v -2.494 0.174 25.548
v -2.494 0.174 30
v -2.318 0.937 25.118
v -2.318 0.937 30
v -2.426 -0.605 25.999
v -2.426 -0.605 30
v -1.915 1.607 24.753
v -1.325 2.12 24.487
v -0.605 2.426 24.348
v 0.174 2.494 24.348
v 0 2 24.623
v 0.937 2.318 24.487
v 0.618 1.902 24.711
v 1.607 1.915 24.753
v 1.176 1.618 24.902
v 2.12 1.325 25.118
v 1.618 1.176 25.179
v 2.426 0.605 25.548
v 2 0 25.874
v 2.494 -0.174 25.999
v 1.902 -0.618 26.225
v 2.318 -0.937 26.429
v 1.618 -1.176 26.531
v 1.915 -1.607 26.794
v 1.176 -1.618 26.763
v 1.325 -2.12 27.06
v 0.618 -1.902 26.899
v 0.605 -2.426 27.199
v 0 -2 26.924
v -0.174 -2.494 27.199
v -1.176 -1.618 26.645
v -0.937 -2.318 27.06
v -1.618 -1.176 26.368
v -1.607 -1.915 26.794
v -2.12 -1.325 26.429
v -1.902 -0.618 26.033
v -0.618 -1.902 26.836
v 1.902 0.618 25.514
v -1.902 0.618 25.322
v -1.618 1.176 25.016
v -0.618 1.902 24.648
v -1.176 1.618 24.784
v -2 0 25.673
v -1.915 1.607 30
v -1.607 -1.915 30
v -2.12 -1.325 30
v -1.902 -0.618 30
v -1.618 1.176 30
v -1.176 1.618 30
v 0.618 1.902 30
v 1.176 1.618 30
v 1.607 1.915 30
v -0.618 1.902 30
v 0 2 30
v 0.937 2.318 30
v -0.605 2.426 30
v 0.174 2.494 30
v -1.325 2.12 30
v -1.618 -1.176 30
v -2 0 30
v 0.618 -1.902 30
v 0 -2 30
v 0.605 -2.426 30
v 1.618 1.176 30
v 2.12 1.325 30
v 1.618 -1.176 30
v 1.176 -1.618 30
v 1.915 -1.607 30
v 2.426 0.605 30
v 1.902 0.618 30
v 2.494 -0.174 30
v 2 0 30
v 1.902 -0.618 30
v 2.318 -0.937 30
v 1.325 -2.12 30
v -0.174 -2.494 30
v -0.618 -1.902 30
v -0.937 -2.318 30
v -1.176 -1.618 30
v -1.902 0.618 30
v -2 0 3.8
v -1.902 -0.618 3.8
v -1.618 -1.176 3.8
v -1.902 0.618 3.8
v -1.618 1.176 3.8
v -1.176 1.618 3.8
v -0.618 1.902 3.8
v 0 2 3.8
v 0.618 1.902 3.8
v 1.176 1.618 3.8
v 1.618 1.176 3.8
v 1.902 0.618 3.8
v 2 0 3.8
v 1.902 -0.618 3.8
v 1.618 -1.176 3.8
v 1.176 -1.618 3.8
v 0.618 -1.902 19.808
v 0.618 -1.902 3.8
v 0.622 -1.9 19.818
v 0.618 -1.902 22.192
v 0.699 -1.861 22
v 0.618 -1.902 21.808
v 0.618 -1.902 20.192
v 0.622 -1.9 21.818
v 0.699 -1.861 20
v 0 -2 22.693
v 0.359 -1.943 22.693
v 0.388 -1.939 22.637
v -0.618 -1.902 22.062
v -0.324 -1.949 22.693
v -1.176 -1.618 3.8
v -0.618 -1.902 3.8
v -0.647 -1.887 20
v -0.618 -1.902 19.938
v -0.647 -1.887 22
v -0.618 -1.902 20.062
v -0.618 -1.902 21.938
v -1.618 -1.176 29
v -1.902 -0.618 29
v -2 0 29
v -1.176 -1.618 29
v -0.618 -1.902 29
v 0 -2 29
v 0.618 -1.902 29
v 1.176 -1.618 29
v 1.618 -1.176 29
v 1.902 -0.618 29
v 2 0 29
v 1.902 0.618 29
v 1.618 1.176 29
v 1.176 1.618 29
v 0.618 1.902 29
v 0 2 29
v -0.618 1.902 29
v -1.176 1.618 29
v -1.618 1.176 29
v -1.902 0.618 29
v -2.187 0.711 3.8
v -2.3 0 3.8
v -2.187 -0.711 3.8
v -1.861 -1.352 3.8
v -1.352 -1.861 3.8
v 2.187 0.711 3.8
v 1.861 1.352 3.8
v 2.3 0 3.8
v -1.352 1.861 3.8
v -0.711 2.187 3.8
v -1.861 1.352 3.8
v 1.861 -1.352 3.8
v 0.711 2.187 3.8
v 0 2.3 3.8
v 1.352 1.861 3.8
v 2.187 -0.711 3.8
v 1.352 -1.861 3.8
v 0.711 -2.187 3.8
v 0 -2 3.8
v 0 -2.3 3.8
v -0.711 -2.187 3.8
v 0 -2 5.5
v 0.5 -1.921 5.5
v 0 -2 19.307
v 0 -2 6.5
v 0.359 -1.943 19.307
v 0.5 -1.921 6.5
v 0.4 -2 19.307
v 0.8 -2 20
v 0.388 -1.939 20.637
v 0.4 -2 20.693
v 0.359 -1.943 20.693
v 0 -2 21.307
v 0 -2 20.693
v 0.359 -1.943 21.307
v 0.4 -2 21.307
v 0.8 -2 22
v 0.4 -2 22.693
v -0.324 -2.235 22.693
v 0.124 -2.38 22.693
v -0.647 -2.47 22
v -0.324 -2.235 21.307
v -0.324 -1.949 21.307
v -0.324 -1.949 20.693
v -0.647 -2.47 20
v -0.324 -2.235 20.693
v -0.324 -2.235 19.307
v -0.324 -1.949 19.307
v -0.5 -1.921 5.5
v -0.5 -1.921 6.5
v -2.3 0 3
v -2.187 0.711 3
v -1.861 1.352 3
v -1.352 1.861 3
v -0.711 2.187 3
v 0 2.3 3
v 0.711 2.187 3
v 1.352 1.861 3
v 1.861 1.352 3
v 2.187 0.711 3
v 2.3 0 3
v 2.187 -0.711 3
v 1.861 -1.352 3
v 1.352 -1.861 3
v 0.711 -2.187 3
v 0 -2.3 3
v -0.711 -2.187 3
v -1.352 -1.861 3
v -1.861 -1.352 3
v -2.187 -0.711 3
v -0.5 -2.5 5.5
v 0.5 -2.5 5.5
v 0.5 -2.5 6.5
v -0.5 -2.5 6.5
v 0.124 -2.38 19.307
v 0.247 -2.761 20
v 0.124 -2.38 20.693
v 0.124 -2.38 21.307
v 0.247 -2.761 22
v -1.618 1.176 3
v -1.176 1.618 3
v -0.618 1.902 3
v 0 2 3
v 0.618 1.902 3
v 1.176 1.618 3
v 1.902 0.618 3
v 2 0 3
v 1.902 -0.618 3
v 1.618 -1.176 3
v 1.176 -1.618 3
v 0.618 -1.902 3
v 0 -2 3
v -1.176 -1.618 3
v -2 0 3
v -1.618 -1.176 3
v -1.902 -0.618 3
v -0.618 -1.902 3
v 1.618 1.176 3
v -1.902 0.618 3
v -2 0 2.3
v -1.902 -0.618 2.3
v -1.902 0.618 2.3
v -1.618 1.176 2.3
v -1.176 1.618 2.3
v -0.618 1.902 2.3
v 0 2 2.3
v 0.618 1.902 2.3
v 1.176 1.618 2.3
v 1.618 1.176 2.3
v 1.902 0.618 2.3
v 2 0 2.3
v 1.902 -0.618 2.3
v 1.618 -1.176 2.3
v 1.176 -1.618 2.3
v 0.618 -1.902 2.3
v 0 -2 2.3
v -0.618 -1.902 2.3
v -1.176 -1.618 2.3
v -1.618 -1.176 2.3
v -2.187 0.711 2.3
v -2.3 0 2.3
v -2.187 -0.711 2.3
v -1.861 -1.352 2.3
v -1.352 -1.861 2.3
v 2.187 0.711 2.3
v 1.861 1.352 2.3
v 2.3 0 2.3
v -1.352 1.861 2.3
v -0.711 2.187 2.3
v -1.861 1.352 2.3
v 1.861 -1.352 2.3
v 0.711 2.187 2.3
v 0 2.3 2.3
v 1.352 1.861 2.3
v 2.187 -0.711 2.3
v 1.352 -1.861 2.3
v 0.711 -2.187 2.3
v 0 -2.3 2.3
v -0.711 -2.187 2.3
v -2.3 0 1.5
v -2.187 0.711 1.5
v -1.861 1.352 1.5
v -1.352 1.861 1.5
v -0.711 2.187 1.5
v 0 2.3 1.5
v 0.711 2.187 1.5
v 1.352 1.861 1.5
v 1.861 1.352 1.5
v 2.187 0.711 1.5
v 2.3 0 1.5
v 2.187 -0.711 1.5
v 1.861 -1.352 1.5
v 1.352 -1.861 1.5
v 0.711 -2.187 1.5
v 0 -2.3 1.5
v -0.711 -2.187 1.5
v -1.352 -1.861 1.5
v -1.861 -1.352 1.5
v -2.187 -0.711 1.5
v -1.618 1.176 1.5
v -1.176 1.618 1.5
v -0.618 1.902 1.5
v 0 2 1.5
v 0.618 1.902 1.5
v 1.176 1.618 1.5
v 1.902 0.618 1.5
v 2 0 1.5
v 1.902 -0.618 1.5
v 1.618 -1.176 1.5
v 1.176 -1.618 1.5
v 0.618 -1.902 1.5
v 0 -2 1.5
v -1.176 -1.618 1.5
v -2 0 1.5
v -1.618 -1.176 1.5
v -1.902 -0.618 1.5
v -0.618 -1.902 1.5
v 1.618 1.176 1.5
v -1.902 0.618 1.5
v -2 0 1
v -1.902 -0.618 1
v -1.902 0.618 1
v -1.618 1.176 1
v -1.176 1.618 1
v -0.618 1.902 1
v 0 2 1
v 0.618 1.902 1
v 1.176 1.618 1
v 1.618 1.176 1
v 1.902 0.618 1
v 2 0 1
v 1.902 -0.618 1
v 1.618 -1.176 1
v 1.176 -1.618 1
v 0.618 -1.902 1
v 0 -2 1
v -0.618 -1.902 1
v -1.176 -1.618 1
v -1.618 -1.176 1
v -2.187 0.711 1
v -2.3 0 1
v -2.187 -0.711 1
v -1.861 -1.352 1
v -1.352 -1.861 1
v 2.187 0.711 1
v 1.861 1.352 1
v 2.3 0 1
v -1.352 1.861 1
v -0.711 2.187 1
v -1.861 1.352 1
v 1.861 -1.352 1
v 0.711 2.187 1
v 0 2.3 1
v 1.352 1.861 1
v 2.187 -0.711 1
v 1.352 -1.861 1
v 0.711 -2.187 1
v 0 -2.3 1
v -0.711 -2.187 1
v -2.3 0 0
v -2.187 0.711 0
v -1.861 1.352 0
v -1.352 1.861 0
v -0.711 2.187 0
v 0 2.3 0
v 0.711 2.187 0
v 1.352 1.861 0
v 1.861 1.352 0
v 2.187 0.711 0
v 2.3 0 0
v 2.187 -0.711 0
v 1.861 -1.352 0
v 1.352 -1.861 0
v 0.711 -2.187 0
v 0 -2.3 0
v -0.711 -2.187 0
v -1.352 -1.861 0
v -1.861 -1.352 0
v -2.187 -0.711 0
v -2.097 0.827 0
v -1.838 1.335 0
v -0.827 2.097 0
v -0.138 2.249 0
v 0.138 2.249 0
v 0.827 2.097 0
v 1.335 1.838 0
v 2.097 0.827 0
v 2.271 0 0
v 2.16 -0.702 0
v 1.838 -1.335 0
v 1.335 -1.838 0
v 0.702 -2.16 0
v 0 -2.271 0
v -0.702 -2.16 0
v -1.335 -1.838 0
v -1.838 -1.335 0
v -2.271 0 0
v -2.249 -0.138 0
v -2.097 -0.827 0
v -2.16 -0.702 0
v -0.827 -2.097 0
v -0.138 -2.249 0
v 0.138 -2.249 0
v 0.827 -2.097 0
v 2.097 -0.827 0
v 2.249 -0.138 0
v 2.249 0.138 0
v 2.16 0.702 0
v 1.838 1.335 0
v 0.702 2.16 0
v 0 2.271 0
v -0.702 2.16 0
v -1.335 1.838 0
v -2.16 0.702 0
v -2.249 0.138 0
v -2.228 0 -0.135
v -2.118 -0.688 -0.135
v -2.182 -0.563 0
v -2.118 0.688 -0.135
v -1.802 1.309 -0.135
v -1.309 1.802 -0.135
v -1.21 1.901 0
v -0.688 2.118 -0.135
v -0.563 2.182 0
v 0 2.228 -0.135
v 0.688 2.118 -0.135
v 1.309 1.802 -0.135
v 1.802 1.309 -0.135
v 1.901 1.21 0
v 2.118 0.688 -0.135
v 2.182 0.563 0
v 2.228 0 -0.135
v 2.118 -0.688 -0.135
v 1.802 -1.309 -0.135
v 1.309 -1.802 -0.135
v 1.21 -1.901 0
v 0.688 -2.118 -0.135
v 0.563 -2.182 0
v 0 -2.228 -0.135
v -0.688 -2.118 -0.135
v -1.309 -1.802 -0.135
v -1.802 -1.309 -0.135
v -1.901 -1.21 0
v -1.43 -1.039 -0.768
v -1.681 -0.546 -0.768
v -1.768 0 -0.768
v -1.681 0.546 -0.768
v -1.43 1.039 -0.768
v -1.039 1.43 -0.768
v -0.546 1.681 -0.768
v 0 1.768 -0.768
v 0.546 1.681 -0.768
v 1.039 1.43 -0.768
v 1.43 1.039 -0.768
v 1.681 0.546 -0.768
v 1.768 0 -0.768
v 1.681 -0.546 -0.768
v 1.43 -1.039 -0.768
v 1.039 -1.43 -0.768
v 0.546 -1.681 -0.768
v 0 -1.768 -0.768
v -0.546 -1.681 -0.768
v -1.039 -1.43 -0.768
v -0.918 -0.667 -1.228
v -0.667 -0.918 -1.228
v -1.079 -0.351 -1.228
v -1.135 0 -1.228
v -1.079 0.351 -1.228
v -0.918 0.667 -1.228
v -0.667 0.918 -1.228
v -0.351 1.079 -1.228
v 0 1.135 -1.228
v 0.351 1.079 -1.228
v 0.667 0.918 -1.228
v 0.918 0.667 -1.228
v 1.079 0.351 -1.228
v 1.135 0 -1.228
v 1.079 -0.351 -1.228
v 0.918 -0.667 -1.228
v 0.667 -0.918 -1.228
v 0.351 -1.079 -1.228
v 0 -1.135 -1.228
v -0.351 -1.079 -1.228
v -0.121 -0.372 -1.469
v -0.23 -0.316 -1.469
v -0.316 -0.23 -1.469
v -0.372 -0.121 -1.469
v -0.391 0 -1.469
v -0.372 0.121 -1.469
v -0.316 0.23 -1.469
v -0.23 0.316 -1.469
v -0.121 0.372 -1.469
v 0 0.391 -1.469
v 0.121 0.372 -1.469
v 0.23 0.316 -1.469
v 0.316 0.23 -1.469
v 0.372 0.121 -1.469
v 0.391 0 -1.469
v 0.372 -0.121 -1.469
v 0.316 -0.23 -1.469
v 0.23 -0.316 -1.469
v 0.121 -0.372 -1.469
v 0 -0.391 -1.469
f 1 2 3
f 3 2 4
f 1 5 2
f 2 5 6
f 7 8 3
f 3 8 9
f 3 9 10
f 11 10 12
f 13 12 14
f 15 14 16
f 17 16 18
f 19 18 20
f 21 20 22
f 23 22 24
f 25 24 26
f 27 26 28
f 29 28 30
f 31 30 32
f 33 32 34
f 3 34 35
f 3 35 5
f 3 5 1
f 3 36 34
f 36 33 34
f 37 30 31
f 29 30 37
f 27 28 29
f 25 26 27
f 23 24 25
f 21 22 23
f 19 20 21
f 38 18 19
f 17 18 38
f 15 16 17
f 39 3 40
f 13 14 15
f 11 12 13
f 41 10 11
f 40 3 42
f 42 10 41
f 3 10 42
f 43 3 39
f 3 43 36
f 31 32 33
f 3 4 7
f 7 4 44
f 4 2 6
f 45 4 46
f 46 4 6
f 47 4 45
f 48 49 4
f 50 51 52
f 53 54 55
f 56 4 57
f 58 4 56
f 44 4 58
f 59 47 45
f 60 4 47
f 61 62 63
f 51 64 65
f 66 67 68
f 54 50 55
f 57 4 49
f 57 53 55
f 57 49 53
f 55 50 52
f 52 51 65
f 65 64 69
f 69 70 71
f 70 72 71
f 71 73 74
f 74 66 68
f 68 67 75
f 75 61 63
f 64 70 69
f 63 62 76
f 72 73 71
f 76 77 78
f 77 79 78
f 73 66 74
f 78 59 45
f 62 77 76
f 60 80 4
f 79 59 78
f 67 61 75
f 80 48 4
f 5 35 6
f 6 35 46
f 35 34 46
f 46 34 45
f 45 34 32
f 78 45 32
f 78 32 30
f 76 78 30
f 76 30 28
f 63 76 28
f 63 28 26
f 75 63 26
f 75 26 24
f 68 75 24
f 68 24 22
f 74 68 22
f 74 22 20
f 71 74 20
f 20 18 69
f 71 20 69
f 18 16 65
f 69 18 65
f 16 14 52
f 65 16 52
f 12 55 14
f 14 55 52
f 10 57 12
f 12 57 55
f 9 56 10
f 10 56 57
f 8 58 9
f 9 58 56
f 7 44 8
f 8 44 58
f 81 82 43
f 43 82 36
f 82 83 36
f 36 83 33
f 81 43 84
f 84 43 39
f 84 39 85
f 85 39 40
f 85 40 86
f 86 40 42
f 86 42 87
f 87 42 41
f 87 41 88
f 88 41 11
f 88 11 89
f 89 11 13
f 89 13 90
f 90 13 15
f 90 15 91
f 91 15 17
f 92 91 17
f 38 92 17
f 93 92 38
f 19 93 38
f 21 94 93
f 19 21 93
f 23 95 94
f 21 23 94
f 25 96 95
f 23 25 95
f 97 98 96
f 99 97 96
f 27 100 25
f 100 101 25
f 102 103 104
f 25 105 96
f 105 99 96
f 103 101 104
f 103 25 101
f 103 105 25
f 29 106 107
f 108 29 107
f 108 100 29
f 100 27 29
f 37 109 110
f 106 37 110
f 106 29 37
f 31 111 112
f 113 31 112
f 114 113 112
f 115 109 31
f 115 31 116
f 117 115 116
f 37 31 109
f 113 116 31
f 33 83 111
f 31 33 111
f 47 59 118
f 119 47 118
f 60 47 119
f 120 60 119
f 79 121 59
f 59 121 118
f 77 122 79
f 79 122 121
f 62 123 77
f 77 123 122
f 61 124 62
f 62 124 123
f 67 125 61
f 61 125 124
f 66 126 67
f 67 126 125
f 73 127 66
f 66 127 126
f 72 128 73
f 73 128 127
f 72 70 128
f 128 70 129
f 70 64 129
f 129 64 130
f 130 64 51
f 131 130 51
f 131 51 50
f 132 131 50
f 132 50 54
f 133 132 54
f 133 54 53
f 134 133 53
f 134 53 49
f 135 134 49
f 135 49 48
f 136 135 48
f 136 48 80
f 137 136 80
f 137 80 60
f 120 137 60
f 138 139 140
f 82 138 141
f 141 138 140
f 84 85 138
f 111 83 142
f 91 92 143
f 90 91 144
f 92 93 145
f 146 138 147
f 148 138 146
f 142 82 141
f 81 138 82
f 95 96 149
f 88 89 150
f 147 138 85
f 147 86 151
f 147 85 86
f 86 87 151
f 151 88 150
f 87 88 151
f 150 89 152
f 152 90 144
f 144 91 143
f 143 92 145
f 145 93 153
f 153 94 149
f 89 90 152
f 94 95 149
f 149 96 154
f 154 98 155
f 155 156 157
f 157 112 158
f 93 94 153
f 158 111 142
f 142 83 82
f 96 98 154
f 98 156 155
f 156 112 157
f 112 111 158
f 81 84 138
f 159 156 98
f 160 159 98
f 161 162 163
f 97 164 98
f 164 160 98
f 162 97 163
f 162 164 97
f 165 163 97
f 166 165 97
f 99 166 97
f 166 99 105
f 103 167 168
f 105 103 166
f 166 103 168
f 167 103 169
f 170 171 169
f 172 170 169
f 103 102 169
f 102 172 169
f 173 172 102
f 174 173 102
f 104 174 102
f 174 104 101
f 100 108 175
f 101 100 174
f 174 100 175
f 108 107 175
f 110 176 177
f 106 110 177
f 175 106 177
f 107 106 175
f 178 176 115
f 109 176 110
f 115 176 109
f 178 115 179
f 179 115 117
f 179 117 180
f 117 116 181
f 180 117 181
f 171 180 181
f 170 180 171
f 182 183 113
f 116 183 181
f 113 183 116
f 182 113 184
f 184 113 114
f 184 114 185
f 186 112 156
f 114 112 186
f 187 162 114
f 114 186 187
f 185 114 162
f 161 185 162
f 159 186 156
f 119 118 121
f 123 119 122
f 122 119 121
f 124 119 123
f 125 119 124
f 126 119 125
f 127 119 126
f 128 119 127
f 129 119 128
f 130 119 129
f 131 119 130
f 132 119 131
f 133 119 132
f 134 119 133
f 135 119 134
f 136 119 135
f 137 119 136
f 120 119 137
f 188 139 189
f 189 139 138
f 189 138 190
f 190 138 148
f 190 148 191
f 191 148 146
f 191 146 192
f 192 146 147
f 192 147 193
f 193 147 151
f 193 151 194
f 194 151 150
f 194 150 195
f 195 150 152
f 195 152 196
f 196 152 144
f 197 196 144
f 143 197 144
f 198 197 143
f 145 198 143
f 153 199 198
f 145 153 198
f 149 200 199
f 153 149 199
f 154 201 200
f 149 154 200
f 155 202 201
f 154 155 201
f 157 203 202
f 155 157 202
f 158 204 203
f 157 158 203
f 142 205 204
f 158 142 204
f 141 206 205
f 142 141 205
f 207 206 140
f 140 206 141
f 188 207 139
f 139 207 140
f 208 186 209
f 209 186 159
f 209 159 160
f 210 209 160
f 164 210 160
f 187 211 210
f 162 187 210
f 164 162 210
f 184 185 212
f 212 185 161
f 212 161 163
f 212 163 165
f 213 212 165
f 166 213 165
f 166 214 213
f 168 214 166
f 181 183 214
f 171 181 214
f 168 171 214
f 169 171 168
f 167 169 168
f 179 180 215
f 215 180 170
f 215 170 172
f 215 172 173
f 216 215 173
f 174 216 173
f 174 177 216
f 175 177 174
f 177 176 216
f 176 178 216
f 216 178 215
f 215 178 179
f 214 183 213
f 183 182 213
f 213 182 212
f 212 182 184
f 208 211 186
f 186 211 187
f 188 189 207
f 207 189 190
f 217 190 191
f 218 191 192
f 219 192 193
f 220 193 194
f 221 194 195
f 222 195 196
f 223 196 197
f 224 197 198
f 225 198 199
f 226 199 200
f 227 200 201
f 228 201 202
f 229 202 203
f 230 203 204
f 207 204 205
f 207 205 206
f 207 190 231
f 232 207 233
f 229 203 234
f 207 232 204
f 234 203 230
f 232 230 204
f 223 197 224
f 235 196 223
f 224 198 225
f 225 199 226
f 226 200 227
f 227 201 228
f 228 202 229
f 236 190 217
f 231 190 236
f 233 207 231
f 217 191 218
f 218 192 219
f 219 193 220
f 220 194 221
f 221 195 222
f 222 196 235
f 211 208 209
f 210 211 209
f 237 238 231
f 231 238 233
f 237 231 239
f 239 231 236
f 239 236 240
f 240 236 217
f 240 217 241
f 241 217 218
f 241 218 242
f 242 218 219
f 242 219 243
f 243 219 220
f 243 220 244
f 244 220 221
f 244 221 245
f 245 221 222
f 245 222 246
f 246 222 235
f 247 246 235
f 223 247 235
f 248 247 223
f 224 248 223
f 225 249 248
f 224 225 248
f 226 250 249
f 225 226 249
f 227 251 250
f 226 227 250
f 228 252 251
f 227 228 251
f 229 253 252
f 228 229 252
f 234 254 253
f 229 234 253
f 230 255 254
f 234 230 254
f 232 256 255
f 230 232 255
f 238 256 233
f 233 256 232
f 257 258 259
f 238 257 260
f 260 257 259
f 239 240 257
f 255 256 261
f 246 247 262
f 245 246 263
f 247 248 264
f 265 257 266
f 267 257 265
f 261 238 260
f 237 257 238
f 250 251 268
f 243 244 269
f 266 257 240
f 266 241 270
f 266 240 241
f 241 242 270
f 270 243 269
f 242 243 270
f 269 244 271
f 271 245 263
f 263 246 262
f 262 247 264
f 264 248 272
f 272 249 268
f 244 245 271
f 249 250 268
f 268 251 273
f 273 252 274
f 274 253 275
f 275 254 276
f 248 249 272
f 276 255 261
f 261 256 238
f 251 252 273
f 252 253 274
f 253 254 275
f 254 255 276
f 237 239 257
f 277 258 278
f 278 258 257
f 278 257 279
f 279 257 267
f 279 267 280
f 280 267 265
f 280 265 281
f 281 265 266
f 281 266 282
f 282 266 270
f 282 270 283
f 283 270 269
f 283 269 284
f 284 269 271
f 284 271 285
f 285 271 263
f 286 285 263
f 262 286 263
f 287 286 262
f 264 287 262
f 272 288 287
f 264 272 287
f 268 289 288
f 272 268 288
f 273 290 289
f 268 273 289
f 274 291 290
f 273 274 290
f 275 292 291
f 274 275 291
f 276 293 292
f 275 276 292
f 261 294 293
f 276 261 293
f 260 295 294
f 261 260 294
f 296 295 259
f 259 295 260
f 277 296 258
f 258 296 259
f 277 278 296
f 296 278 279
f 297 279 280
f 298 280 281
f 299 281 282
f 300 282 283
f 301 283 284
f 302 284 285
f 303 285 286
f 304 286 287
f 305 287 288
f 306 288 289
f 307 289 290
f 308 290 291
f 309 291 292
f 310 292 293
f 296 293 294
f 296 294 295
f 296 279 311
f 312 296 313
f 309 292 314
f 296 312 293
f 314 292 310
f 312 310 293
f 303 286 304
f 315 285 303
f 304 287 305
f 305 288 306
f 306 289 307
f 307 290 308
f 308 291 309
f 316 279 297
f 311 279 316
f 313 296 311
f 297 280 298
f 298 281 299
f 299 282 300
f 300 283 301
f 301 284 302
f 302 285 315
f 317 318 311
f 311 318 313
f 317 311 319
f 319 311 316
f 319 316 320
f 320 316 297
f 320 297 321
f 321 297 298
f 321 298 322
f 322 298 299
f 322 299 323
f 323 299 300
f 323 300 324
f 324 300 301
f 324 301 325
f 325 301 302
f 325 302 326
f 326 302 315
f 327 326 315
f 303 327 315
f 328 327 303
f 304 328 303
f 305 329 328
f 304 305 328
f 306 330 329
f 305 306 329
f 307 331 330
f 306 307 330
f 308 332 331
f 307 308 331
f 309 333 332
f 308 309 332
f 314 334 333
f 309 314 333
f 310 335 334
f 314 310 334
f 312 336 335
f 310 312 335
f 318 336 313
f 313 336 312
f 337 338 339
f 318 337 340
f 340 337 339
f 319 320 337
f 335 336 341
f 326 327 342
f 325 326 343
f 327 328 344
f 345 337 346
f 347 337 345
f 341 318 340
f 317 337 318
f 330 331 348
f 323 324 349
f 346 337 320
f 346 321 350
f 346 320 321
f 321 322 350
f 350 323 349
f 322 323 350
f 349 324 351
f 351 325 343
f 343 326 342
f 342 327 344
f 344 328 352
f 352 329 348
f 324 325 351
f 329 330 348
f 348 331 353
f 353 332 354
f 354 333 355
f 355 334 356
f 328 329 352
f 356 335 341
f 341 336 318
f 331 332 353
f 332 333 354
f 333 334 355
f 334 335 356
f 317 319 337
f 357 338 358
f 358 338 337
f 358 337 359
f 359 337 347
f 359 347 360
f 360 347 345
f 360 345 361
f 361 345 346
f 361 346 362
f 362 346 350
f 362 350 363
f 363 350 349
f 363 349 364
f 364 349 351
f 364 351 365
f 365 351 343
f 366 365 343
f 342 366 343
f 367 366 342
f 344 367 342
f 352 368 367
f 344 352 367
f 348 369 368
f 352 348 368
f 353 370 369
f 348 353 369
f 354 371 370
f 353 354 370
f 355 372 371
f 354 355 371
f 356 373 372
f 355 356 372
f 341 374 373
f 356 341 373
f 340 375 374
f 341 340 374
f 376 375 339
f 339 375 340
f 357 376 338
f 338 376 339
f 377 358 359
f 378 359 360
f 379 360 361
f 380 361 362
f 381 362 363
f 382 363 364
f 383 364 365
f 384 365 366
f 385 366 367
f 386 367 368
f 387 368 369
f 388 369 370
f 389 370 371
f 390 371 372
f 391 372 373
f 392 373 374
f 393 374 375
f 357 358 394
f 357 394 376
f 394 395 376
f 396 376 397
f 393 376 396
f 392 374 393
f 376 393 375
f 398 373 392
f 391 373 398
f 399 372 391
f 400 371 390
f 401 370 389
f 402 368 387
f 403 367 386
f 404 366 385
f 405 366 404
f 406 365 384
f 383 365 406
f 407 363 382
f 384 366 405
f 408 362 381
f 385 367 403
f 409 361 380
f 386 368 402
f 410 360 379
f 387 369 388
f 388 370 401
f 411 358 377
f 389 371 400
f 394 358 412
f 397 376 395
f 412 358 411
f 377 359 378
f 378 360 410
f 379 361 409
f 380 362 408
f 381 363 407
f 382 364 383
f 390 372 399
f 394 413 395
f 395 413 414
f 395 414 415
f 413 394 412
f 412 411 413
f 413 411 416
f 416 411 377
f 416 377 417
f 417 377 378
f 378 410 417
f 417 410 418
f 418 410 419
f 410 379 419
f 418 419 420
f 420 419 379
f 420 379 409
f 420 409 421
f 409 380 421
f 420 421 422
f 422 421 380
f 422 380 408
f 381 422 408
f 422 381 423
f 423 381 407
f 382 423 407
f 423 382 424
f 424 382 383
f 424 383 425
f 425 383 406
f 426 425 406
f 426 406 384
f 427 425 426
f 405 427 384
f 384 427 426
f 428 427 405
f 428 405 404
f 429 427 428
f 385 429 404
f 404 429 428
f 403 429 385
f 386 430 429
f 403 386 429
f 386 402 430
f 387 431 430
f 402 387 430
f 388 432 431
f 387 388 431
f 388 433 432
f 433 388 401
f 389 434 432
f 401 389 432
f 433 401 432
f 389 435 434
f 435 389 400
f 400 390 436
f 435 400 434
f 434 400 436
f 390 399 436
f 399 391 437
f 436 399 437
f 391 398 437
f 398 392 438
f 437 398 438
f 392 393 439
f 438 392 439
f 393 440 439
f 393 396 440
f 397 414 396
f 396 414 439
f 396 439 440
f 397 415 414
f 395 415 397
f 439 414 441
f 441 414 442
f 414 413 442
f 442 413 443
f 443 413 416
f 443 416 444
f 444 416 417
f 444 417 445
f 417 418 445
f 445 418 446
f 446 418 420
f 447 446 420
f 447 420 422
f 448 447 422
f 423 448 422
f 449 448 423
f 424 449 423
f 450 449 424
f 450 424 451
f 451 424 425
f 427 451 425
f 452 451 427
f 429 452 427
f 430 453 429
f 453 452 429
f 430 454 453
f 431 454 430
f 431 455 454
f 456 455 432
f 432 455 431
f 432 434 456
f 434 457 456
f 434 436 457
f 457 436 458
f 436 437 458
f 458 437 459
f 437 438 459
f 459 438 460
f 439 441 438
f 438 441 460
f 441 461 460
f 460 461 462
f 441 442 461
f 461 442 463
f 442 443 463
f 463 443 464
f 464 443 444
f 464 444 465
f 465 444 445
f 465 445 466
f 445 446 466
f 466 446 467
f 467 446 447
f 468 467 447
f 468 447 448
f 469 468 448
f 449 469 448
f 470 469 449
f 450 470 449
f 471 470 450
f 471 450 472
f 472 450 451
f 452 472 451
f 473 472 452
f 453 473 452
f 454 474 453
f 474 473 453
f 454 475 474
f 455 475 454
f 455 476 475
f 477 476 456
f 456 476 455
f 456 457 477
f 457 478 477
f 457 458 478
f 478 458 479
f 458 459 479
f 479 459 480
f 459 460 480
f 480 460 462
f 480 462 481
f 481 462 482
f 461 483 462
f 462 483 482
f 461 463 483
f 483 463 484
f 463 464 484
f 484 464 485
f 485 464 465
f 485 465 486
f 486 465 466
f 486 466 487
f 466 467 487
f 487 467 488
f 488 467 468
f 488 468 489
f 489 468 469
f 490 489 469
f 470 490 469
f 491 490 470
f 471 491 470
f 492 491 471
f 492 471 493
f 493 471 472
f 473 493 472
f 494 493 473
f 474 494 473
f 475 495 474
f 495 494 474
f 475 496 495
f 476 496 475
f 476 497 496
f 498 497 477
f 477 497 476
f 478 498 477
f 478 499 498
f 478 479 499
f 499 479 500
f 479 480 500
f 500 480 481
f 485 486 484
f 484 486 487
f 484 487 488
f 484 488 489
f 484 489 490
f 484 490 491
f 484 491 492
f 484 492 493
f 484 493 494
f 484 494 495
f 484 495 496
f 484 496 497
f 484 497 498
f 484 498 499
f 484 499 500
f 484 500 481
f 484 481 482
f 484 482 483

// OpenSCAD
difference(){

	
	
	

	 union(){

		cylinder(h=30, r=2, $fn=20);
		
		translate([0, 0, 0]) cylinder(h=1, r=2.3, $fn=20);
		
		translate([0, 0, 1.5]) cylinder(h=.8, r=2.3, $fn=20);
		
		translate([0, 0, 3]) cylinder(h=.8, r=2.3, $fn=20);
		
		
		
		translate([0,0,20]) rotate(140){
		
			difference(){
		
		
				cylinder(h=10,r=2.5, $fn=20);
		
				rotate(a=30, v=[1,1,0])
					cube(center=true, size=[10,10,10]);
			}
			
		
		}
		
		translate([0,0,1]){
		
			intersection(){
		
				
				translate([0,0,-2]){
		
					sphere(r=2.5,center=true, $fn=20);
		
				}
		
				sphere(r=2.5, center=true, $fn=20);
		
			
			}
		}
		
		translate([0,-2,6]){
			cube(size=[1,1,1], center=true);
		}
		
		translate([0,-2,22]){
			sphere(r=.8, center=true);
		}
		
		translate([0,-2,20]){
			sphere(r=.8, center=true);
		}
	
	}

	translate([0,0,29]){
		cylinder(h=1.1, r=2, $fn=20);
	}	

}
